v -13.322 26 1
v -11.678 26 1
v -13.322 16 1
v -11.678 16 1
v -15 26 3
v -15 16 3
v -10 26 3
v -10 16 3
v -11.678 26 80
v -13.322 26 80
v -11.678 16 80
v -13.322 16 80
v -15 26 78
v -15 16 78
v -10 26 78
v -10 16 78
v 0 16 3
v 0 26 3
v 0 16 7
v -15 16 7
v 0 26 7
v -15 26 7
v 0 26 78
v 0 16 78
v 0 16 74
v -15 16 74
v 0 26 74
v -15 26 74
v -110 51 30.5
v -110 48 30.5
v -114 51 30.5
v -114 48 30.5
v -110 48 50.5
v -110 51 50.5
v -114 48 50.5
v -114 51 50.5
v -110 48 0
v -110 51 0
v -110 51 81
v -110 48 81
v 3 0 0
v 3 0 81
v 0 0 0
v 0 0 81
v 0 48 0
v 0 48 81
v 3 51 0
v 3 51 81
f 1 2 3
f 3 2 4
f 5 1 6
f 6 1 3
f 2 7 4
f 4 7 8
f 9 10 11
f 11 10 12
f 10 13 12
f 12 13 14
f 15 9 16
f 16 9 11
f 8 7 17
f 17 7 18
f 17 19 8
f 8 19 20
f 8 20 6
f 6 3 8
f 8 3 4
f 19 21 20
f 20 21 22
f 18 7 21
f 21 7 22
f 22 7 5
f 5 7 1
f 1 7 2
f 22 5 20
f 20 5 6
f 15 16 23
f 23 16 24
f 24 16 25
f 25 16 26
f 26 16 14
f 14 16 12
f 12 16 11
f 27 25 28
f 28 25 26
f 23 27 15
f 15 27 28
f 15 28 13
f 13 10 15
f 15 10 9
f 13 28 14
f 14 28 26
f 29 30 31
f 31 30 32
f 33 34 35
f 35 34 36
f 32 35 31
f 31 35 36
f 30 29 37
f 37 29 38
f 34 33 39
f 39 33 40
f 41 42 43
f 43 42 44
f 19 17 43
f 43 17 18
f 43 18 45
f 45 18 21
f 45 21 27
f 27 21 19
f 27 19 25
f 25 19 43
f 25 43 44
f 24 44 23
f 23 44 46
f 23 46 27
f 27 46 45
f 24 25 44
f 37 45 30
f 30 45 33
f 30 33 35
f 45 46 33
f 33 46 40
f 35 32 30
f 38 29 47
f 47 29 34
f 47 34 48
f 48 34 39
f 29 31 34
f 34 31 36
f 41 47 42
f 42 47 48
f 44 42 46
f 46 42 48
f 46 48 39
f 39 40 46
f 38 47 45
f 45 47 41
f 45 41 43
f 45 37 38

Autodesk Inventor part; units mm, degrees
ref_plane "YZ Plane" through (0, 0, 0) normal (1, 0, 0) x (0, 1, 0)
ref_plane "XZ Plane" through (0, 0, 0) normal (0, 1, 0) x (-1, 0, 0)
sketch "Sketch5" plane through (0, 0, 0) normal (0, 0, 1) x (1, 0, 0)
  line L0 (0, 0) -> (3, 0)
  line L1 (3, 0) -> (3, 51)
  line L2 (3, 51) -> (-110, 51)
  line L3 (-110, 51) -> (-110, 48)
  line L4 (-110, 48) -> (0, 48)
  line L5 (0, 48) -> (0, 0)
  dimension "d32" = 3
  dimension "d33" = 3
  dimension "d34" = 110
  dimension "d35" = 51
extrude "Extrusion4" add sketch "Sketch5" along normal blind 81
sketch "Sketch6" plane through (-110, 48, 0) normal (-1, 0, 0) x (0, 0, 1)
  line L0 (0, 0) -> (81, 0) projected
  line L1 (0, 3) -> (81, 3) projected
  line L2 (30.5, 0) -> (50.5, 0)
  line L3 (50.5, 0) -> (50.5, 3)
  line L4 (50.5, 3) -> (30.5, 3)
  line L5 (30.5, 3) -> (30.5, 0)
  point P0 (0, -48)
  point P1 (30.5, 3)
  dimension "d38" = 20
  dimension "d39" = 30.5
extrude "Extrusion5" add sketch "Sketch6" along normal blind 4
sketch "Sketch11" plane through (0, 0, 0) normal (-1, 0, 0) x (0, 0, 1)
  line L0 (81, 0) -> (81, 51) projected
  line L1 (78, 26) -> (74, 26)
  line L2 (74, 26) -> (74, 16)
  line L3 (74, 16) -> (77, 16)
  line L4 (0, 0) -> (81, 0) projected
  line L5 (78, 26) -> (78, 16)
  line L6 (81, 48) -> (81, 0) projected
  line L7 (78, 16) -> (77, 16)
  point P0 (81, 26)
  point P1 (81, 16)
  dimension "d82" = 4
  dimension "d83" = 10
  dimension "d84" = 16
  dimension "d85" = 74
extrude "Extrusion6" add sketch "Sketch11" along normal blind 15
ref_plane "Work Plane3" through (0, 0, 40.5) normal (0, 0, 1) x (1, 0, 0)
mirror "Mirror4" about plane through (0, 0, 40.5) normal (0, 0, 1) of "Extrusion6"
sketch "Sketch15" plane through (0, 16, 74) normal (0, -1, 0) x (1, 0, 0)
  line L0 (0, 4) -> (-15, 4) projected
  line L1 (-15, 4) -> (-13.3218, 6)
  line L2 (-13.3218, 6) -> (-11.6782, 6)
  line L3 (-11.6782, 6) -> (-10, 4)
  line L4 (-15, 0) -> (-15, 4) projected
  line L5 (-15, 4) -> (-10, 4)
  line L6 (0, -74) -> (0, 7) projected
  dimension "d86" = 10
  dimension "d87" = 50
  dimension "d88" = 50
  dimension "d89" = 2
extrude "Extrusion10" add sketch "Sketch15" against normal up to surface (10 mm away)
mirror "Mirror8" about plane through (0, 0, 40.5) normal (0, 0, 1) of "Extrusion10"
properties part number "top"
